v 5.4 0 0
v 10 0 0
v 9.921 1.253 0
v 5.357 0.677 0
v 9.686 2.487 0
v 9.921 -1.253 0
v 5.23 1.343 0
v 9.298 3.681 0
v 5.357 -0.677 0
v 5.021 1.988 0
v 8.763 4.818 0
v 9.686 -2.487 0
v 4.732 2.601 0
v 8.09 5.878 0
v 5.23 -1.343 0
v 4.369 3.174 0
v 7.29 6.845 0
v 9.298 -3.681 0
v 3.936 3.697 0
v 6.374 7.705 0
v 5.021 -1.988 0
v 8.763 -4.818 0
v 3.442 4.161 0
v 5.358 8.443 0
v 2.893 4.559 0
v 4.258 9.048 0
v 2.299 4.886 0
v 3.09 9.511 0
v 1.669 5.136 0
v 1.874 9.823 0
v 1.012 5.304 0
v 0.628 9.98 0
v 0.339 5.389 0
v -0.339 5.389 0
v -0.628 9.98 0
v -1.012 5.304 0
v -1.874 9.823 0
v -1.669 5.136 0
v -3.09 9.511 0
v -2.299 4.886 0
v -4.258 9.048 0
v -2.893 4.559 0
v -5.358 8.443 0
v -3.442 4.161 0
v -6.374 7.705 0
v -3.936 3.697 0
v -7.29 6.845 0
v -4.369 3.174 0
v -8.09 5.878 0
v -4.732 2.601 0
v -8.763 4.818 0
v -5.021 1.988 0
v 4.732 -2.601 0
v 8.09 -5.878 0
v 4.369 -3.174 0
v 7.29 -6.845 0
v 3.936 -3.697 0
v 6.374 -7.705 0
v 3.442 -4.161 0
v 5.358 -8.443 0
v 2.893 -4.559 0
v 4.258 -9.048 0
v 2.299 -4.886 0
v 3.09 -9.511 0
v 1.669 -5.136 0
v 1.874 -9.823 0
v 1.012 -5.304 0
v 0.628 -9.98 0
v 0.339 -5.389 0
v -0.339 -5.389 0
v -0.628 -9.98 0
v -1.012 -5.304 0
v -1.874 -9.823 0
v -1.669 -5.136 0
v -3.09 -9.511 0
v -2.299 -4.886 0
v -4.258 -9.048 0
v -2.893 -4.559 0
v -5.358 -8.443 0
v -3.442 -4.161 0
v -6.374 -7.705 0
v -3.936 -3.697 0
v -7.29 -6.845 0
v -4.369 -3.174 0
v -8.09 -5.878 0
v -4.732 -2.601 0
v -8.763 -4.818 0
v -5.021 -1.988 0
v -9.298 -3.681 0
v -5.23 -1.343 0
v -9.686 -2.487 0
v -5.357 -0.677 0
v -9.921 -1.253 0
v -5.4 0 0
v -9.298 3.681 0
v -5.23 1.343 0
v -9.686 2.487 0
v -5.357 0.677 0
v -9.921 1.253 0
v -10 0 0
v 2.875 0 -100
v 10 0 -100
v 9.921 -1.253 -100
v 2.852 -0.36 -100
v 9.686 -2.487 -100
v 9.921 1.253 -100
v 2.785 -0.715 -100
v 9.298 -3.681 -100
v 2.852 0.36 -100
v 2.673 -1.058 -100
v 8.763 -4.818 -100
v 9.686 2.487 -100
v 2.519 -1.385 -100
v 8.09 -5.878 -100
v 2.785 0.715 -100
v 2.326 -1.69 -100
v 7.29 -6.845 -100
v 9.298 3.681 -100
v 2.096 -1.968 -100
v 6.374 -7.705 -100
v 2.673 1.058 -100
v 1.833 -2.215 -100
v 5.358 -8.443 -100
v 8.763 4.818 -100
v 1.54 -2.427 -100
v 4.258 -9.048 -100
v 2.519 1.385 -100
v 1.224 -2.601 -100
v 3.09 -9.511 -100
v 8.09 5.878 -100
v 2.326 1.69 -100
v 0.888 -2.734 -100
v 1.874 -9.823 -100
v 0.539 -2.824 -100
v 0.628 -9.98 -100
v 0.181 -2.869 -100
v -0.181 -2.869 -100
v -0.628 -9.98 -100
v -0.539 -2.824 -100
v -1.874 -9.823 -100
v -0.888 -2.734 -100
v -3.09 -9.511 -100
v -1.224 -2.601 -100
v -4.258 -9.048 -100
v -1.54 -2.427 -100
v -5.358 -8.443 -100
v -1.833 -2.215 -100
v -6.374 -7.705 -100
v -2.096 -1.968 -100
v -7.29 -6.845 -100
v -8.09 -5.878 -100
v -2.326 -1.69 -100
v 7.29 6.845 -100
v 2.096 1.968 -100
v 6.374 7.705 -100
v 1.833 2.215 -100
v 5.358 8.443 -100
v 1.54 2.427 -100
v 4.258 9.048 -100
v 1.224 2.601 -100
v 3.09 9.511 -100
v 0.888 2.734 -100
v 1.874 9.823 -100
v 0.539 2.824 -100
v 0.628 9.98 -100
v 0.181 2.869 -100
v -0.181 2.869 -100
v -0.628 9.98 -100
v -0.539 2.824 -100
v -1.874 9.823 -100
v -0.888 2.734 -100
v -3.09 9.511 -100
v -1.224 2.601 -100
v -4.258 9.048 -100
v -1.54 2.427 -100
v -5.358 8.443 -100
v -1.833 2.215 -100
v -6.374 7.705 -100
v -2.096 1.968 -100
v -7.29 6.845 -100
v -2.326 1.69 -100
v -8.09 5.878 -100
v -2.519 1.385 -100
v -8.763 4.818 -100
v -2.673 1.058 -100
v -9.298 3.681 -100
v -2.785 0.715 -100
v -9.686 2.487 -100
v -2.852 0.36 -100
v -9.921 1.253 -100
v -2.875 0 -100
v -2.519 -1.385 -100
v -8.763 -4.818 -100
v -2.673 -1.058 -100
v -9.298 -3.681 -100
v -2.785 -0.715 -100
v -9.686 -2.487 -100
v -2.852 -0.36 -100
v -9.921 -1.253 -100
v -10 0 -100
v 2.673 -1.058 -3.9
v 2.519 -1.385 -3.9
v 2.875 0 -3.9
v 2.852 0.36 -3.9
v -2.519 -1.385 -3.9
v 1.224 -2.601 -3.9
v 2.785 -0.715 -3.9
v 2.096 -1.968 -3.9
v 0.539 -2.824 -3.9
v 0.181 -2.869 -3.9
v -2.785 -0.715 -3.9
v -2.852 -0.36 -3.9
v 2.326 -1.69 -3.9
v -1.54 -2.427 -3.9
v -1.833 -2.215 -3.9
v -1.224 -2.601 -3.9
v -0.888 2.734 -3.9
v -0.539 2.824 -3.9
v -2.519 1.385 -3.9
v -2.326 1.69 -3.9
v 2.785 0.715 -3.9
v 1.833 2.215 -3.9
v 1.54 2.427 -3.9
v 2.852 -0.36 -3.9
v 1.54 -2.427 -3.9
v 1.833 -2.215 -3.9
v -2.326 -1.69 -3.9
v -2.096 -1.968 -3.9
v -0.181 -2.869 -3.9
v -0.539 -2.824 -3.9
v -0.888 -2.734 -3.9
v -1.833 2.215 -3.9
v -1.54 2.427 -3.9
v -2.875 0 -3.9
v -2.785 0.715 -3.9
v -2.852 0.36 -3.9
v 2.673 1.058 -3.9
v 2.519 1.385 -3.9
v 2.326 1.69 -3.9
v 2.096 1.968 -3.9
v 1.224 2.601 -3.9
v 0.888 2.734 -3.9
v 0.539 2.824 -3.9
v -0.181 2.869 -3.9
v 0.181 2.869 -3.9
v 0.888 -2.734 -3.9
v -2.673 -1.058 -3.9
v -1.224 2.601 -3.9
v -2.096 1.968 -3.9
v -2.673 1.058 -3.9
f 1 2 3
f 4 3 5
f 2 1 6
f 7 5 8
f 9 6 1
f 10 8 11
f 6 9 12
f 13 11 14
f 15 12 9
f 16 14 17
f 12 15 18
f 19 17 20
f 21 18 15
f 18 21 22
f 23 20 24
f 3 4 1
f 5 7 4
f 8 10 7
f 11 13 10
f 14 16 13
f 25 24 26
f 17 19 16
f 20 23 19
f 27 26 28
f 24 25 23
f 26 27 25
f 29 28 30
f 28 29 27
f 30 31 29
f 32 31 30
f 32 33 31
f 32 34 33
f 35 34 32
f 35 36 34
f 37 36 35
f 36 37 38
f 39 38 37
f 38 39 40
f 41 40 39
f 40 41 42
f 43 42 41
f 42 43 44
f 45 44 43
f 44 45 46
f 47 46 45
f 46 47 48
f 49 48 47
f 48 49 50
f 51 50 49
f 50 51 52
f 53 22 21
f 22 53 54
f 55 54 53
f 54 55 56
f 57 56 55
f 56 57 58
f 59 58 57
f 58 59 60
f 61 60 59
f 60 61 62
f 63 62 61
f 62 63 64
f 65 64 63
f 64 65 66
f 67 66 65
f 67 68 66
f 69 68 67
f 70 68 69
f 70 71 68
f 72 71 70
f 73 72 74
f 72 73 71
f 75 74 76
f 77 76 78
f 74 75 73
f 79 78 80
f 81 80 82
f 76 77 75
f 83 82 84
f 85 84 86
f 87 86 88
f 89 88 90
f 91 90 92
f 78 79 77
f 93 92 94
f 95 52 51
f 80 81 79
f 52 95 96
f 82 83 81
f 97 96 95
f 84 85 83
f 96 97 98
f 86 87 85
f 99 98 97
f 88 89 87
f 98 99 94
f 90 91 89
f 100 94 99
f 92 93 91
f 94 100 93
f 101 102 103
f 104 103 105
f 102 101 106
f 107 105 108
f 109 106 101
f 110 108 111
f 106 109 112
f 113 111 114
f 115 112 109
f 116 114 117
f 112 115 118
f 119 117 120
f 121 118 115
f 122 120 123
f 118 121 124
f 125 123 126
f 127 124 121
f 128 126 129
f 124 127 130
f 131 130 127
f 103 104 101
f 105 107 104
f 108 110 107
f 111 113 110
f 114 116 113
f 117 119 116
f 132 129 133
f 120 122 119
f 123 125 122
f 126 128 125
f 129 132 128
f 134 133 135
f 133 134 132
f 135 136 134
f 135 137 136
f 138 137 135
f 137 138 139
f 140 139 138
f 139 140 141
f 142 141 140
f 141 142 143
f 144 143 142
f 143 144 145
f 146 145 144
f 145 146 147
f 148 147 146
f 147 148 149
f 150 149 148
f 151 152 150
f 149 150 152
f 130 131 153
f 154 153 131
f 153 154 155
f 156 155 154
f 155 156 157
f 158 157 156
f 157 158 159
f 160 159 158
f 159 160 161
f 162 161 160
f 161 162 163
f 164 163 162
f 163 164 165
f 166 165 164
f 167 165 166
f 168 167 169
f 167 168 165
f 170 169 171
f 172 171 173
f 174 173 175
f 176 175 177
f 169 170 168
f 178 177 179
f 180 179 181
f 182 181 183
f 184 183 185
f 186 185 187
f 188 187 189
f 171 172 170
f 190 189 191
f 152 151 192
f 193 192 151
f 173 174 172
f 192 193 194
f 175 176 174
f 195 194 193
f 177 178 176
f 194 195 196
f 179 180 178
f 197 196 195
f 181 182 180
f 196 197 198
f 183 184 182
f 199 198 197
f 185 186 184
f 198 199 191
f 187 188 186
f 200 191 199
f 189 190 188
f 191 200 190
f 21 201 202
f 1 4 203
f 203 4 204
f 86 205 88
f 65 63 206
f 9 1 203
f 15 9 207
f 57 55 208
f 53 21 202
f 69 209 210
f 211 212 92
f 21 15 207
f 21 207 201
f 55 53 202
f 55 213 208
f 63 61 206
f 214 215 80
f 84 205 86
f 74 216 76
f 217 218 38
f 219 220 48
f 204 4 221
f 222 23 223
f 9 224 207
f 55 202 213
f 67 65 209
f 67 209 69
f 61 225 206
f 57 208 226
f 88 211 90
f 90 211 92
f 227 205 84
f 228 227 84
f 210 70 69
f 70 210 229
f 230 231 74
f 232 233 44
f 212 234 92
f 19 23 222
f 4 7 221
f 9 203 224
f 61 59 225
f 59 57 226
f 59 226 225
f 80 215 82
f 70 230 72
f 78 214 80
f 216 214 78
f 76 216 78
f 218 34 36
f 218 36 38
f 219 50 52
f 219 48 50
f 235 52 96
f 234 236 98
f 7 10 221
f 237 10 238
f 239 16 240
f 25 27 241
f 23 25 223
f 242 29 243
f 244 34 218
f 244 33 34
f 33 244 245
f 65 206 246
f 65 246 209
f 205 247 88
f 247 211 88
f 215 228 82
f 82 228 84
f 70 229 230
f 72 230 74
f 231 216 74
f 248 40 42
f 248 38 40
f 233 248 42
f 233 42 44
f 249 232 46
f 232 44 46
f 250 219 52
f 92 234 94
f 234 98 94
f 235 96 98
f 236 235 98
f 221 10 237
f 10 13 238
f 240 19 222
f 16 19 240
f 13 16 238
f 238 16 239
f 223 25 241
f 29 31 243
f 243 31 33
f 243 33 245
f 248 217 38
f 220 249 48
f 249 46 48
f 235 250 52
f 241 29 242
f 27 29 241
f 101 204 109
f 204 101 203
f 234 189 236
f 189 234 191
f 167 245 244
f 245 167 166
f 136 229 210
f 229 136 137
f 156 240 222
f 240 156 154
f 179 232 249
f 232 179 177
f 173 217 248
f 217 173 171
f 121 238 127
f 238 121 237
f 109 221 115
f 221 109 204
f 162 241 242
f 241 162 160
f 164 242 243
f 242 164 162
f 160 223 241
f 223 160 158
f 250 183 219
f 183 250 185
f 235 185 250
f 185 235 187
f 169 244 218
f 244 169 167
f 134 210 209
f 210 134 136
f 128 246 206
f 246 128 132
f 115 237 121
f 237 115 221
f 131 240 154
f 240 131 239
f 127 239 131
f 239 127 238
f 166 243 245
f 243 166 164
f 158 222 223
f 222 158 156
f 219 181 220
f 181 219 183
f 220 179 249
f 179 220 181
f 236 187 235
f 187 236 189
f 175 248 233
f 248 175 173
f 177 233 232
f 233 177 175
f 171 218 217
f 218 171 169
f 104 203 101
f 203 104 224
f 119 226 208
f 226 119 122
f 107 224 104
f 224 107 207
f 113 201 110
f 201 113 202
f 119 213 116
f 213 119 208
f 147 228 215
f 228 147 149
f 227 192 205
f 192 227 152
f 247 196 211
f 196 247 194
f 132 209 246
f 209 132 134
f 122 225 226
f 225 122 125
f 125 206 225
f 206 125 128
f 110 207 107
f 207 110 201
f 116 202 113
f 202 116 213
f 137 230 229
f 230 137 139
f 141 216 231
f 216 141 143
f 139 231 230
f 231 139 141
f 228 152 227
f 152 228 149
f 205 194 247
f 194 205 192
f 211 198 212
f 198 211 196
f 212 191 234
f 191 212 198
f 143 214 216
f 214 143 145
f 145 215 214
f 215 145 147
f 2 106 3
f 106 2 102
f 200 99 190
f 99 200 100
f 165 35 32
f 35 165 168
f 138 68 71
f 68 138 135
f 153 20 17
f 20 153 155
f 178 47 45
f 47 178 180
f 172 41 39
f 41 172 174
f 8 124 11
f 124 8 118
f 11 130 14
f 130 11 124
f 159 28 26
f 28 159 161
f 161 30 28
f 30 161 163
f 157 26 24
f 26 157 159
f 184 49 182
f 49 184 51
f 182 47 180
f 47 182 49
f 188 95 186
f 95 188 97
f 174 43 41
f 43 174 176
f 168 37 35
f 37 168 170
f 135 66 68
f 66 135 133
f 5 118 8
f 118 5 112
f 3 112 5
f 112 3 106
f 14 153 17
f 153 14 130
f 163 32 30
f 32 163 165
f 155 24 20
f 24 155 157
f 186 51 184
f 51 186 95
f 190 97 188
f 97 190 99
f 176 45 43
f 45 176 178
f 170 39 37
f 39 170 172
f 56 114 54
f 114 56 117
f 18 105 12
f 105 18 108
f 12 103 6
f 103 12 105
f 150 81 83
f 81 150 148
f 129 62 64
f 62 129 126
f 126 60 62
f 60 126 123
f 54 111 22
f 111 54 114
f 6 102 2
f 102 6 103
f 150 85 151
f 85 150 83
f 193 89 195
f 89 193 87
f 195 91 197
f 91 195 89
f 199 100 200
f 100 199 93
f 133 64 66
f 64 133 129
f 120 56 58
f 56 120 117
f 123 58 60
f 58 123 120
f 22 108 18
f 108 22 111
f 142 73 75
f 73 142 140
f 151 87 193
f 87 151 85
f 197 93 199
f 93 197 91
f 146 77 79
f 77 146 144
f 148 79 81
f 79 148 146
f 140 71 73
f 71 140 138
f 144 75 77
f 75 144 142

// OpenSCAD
$fn = 50;


difference() {
	union() {
		translate(v = [0, 0, -100.0000000000]) {
			cylinder(h = 100, r = 10.0000000000);
		}
	}
	union() {
		translate(v = [0, 0, 0]) {
			rotate(a = [0, 0, 0]) {
				difference() {
					union() {
						#translate(v = [0, 0, -100.0000000000]) {
							cylinder(h = 100, r = 2.6000000000);
						}
						#translate(v = [0, 0, -3.9000000000]) {
							cylinder(h = 3.9000000000, r = 10.0000000000, r1 = 2.8750000000, r2 = 5.4000000000);
						}
						#translate(v = [0, 0, -100.0000000000]) {
							cylinder(h = 100, r = 2.8750000000);
						}
						#translate(v = [0, 0, -100.0000000000]) {
							cylinder(h = 100, r = 2.6000000000);
						}
					}
					union();
				}
			}
		}
	}
}
